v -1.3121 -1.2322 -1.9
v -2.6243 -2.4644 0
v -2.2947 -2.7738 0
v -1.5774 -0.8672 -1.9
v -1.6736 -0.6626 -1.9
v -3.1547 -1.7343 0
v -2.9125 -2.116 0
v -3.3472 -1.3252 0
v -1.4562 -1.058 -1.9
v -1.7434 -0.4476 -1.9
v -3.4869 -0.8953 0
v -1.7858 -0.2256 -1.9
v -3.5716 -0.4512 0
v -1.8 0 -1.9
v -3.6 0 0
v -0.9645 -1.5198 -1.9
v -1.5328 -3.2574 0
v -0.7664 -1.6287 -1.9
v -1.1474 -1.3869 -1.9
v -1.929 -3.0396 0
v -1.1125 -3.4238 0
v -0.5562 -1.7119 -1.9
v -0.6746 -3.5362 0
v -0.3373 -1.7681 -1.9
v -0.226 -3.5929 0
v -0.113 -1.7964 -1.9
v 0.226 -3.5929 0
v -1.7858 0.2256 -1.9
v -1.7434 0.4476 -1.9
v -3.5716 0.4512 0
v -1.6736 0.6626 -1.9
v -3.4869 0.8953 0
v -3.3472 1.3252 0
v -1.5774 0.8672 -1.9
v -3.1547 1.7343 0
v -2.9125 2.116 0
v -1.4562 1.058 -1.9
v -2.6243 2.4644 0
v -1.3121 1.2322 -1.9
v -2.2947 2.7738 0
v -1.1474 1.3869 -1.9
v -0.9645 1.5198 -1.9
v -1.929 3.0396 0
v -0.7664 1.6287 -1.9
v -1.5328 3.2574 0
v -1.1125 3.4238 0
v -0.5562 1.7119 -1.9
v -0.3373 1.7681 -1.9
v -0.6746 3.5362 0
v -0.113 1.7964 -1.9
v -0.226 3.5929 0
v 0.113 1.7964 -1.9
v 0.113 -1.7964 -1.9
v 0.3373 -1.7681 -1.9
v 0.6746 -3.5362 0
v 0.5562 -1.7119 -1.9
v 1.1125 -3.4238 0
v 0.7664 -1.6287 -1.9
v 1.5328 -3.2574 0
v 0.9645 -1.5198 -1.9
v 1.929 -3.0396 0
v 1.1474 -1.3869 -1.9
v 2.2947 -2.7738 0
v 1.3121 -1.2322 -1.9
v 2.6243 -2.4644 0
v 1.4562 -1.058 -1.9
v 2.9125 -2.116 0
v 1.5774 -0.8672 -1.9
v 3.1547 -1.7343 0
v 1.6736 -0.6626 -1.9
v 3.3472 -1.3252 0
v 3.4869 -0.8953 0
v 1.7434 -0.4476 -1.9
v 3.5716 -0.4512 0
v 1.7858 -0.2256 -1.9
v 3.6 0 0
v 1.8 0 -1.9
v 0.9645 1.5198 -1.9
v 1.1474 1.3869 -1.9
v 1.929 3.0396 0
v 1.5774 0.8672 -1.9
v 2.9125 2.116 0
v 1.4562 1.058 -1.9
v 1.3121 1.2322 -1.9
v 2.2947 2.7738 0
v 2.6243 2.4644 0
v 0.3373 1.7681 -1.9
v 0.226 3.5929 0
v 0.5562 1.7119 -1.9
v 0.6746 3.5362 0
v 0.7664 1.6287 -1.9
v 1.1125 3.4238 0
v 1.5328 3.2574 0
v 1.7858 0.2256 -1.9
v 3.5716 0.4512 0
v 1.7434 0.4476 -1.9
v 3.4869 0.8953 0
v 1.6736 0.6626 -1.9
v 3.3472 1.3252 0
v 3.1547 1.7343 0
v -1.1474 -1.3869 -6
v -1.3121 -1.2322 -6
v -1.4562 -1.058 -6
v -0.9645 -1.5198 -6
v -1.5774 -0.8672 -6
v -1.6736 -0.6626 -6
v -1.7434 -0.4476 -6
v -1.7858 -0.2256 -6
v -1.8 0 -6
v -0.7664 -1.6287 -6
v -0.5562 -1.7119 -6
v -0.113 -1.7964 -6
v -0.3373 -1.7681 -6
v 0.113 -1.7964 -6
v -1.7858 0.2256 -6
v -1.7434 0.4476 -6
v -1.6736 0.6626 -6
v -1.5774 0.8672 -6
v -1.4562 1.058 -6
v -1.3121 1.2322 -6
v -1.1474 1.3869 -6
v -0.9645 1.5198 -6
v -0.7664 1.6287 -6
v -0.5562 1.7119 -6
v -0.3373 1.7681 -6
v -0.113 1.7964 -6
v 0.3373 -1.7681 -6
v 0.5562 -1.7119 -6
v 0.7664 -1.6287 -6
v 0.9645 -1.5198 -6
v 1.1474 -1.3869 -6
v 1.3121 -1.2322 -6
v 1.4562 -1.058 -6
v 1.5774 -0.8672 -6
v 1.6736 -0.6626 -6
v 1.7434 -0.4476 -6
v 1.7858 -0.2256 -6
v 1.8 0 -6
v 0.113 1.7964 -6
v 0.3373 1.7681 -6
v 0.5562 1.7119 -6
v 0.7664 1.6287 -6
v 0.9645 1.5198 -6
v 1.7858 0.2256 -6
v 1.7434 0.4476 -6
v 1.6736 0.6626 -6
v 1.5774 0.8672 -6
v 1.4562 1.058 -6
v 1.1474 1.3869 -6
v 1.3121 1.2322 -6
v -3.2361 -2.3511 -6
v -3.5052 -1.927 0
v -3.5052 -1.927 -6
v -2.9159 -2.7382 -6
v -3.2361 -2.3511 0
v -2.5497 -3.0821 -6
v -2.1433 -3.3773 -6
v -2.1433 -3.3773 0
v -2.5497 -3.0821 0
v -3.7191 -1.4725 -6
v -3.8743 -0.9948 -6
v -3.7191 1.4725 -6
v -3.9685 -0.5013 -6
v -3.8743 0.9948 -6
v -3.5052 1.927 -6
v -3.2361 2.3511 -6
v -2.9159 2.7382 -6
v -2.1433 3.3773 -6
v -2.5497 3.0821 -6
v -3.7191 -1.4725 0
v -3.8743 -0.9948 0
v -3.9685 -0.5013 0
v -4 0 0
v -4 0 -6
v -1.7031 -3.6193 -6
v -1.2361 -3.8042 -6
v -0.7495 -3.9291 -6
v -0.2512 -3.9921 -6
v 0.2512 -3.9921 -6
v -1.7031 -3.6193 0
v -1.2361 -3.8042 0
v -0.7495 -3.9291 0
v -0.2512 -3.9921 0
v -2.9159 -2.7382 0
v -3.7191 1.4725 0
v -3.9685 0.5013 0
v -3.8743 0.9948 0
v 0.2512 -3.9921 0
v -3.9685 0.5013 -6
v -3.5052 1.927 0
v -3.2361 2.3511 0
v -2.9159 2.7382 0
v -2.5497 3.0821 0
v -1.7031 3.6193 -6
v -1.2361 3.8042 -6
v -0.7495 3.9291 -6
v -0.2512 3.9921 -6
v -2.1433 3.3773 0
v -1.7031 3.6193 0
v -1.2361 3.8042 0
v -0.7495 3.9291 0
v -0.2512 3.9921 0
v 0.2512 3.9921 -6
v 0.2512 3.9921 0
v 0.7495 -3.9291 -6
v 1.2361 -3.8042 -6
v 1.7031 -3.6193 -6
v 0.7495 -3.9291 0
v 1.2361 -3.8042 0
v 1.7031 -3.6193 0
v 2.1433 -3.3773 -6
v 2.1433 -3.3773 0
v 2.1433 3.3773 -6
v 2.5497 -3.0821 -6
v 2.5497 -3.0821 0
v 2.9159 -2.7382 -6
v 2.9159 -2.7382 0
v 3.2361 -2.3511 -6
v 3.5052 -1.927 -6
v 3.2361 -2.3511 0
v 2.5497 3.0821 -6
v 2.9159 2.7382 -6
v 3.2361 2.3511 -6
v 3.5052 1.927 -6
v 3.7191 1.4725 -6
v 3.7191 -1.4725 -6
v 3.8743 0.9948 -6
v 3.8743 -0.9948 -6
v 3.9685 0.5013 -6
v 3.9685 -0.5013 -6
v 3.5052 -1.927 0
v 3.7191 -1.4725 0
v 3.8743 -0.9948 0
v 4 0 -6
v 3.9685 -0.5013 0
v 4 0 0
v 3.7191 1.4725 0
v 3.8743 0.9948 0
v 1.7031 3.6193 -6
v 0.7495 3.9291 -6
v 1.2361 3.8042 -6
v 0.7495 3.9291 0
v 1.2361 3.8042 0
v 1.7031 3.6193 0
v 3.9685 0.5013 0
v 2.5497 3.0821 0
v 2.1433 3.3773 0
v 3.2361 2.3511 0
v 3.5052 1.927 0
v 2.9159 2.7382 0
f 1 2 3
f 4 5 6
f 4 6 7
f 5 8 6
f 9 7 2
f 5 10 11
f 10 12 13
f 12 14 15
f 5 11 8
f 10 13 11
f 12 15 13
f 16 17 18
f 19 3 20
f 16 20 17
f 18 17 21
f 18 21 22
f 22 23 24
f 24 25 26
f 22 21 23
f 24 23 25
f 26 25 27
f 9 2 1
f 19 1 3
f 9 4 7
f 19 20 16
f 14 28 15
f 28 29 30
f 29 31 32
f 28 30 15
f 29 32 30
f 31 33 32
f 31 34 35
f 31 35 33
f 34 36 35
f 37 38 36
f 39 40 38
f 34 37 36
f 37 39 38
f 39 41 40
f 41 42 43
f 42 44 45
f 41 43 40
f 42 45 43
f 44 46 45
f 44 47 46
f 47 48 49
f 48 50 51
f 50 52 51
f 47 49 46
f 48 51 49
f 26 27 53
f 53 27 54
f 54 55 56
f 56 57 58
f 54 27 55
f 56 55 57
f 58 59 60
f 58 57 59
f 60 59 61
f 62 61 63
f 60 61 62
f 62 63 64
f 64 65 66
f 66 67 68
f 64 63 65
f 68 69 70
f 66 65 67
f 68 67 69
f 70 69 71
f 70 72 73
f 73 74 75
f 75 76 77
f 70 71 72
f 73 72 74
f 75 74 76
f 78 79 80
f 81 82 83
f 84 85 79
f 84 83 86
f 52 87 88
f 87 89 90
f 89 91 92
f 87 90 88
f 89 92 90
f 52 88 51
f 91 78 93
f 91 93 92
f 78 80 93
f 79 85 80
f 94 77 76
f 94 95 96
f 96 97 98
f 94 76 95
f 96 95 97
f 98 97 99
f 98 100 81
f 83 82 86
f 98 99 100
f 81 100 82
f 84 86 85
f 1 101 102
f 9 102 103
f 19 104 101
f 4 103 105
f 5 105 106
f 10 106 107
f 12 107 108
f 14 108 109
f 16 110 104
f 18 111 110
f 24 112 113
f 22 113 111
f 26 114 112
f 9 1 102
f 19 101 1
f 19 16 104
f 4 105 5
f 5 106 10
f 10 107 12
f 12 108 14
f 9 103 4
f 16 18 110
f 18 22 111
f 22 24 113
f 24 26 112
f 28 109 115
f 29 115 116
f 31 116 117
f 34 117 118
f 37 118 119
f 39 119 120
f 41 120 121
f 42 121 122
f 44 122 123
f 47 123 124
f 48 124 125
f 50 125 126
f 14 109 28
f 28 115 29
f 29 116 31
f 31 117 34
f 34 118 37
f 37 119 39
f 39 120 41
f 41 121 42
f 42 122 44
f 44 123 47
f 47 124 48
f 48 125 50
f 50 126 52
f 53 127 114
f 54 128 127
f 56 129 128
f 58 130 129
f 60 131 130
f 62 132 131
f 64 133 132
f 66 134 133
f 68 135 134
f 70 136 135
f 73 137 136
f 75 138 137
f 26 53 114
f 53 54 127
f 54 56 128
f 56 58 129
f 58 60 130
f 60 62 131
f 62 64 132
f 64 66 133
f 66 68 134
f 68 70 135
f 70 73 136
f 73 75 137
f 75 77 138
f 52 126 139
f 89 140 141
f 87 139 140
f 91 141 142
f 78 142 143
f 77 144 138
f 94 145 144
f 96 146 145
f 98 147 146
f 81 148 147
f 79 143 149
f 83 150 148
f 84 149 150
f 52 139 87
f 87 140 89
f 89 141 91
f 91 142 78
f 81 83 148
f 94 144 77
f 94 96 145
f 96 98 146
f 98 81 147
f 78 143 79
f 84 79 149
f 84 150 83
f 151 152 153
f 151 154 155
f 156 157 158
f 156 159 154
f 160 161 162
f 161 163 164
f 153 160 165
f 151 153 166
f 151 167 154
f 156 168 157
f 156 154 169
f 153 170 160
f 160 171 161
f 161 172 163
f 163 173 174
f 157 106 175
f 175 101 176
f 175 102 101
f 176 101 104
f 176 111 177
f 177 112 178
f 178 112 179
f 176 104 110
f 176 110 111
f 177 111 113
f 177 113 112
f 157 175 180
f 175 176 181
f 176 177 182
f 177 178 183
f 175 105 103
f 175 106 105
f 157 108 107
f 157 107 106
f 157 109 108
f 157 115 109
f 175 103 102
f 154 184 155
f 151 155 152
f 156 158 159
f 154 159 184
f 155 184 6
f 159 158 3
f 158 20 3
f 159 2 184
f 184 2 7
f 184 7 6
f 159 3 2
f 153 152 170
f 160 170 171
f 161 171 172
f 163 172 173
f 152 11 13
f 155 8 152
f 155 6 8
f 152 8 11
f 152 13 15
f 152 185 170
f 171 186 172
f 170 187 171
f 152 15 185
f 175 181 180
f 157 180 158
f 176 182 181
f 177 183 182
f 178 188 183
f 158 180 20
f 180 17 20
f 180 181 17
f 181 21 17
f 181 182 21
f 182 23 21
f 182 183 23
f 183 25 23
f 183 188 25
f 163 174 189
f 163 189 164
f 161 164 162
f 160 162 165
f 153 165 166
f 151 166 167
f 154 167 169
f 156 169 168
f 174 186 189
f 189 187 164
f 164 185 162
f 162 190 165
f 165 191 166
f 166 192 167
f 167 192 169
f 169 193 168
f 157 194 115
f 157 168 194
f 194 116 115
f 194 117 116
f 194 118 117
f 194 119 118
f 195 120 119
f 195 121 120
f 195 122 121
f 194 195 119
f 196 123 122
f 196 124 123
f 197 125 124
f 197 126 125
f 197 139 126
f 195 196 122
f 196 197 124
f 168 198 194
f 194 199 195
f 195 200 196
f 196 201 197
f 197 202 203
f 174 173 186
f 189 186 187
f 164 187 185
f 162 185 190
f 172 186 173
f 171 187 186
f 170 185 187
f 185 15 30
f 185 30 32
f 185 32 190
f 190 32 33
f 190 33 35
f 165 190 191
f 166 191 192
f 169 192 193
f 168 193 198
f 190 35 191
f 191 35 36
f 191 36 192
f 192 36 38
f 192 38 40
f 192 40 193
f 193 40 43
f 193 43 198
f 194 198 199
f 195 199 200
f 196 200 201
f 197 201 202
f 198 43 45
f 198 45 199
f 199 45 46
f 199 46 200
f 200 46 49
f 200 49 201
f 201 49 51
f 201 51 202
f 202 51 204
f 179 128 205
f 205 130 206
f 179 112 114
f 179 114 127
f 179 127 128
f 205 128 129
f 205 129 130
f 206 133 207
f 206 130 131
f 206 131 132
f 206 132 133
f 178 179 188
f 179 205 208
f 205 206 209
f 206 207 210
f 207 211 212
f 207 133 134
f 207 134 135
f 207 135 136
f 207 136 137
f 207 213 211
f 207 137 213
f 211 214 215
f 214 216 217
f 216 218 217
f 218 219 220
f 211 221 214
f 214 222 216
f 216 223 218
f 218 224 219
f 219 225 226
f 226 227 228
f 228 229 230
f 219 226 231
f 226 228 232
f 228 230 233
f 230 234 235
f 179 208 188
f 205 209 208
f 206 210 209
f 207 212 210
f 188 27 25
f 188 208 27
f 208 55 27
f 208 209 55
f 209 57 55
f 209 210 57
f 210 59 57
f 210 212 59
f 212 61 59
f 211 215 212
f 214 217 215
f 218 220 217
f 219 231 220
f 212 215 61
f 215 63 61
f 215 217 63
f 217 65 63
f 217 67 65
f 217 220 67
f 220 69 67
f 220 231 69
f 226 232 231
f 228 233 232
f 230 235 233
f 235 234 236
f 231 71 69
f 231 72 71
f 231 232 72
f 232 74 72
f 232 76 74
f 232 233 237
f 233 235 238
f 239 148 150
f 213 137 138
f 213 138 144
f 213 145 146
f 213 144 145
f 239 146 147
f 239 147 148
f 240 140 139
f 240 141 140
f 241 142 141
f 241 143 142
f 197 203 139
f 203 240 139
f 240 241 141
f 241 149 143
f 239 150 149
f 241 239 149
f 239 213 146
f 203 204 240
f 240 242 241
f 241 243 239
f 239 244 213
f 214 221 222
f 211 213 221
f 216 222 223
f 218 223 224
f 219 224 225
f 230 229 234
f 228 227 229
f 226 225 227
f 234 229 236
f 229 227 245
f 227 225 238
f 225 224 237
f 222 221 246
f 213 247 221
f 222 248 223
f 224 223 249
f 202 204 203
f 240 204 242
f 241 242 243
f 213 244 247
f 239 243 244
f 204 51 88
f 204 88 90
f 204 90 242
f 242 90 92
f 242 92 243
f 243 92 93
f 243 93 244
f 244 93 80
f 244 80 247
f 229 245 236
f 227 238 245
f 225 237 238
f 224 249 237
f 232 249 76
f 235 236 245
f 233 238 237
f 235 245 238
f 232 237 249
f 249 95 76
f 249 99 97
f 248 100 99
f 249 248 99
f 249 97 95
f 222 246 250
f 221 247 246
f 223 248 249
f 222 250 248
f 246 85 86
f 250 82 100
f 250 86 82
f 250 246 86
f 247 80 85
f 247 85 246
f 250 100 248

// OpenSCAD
$fn = 50;

difference() {
	union() {
		translate(v = [0, 0, -6.0]) {
			cylinder(h = 6, r = 4.0);
		}
	}
	union() {
		translate(v = [0, 0, 0]) {
			rotate(a = [0, 0, 0]) {
				difference() {
					union() {
						translate(v = [0, 0, -9.0]) {
							cylinder(h = 9, r = 1.5);
						}
						translate(v = [0, 0, -1.9]) {
							cylinder(h = 1.9, r1 = 1.8, r2 = 3.6);
						}
						translate(v = [0, 0, -9.0]) {
							cylinder(h = 9, r = 1.8);
						}
						translate(v = [0, 0, -9.0]) {
							cylinder(h = 9, r = 1.5);
						}
					}
					union();
				}
			}
		}
	}
}
